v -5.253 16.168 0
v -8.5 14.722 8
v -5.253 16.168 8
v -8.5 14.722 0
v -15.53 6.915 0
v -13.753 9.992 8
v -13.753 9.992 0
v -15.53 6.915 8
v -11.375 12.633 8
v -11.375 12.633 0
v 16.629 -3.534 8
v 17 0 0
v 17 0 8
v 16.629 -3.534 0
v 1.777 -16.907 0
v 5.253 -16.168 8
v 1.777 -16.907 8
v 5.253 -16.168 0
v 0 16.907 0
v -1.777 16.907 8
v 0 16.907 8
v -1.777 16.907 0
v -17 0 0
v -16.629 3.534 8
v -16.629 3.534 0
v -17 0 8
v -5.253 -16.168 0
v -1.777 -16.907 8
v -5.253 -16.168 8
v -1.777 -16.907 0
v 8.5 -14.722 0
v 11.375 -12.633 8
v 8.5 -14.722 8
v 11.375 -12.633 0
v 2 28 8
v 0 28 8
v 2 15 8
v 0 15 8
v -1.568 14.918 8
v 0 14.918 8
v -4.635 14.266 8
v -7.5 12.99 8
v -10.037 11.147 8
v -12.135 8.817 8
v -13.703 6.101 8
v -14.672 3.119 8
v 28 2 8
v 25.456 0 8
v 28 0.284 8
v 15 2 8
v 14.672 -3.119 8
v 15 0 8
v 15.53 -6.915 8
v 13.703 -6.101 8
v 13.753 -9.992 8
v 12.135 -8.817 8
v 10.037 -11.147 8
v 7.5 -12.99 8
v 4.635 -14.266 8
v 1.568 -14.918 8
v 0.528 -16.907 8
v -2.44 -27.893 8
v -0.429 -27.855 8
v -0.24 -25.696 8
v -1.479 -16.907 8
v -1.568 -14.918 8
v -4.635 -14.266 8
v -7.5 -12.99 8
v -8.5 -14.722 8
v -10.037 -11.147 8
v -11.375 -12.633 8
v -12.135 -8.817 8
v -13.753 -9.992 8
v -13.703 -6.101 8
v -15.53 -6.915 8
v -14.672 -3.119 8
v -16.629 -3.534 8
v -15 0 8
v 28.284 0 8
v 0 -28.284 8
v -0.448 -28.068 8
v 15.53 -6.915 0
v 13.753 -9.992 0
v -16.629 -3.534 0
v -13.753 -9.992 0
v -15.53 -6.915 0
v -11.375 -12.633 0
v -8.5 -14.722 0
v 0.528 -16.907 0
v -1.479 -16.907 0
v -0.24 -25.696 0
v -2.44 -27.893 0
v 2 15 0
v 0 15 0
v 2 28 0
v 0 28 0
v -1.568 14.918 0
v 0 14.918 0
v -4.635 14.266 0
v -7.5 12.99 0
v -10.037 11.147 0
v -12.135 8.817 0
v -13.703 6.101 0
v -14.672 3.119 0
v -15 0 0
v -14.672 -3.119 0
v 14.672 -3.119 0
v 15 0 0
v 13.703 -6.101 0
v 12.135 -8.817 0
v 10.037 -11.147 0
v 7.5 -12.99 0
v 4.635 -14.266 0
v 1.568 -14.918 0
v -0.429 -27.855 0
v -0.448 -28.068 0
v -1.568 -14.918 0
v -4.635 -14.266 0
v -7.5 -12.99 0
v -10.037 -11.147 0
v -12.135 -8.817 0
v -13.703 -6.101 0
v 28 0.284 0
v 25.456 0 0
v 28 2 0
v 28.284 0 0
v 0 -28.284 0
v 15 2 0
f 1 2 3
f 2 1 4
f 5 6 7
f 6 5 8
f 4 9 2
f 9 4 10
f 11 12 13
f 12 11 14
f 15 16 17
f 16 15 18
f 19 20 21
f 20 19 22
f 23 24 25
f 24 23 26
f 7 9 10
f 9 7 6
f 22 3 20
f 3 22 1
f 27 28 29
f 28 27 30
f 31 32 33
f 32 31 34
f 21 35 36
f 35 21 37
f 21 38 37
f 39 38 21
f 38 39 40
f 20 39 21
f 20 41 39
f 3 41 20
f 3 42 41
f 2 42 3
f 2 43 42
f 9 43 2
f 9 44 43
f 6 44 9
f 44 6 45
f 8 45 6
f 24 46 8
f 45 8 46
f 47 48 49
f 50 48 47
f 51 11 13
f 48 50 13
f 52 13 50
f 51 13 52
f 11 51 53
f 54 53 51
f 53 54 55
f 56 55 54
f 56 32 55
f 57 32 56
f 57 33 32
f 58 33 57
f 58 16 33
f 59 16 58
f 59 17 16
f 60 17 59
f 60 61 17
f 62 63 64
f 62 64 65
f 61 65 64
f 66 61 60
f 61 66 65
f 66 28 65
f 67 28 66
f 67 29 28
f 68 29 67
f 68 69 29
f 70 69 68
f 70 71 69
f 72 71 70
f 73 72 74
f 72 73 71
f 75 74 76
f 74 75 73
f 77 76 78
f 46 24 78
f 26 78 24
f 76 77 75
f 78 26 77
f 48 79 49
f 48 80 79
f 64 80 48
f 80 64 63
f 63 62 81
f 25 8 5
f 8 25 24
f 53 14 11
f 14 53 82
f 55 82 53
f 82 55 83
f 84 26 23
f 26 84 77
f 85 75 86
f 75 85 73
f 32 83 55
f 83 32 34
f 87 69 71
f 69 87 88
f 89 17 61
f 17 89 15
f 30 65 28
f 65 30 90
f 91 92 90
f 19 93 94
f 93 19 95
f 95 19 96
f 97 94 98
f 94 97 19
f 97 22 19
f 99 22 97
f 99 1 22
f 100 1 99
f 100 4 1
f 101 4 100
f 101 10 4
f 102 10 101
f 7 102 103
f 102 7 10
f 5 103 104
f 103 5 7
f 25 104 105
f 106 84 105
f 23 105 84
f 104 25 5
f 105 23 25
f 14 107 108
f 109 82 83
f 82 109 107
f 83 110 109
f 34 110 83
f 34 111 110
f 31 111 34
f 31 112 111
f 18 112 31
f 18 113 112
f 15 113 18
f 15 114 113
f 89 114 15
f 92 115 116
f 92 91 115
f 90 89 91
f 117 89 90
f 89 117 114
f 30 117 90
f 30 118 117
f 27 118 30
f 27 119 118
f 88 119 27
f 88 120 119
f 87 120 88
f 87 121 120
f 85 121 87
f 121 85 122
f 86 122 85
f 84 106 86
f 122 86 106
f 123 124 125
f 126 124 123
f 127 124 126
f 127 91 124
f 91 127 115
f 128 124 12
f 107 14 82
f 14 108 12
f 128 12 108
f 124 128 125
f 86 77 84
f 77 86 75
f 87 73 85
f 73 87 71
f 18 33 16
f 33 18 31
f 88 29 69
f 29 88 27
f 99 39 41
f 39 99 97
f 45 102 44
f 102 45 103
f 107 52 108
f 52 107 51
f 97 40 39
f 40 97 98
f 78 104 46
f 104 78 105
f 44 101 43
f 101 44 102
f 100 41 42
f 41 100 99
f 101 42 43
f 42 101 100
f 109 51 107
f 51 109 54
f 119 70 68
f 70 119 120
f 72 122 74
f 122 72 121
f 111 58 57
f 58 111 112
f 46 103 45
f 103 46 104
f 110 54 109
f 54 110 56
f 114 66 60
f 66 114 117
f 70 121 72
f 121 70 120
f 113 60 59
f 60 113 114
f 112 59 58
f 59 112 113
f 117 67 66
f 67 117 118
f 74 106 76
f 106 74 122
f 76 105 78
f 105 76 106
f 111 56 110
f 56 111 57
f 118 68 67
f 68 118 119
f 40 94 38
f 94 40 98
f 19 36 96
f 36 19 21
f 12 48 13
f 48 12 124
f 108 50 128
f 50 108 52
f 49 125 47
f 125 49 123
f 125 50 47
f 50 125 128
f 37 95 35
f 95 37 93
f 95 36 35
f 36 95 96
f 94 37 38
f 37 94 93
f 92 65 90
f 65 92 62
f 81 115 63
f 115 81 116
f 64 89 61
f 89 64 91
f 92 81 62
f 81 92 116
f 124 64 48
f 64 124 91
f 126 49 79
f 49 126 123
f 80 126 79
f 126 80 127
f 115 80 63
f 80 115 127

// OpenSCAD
/* [Dimensions] */
// Inner Diameter in mm
DIA = 30;//[10:60]

// height in mm
HEIGHT = 08; //[02:10]

// Strength in mm
STRENGTH = 02; //[01:05]

// Leg Length in mm
LEGLENGTH = 13; //[0:60]


// measures in mm

difference() {
    cylinder(HEIGHT,DIA/2+STRENGTH,DIA/2+STRENGTH);cylinder(HEIGHT,DIA/2,DIA/2); 
    cube([40,40,HEIGHT]);
    }
    
 
translate([DIA/2,0,0]) cube([LEGLENGTH,STRENGTH,HEIGHT]);
translate([0,DIA/2,0]) cube([STRENGTH,LEGLENGTH,HEIGHT]);
 
rotate([0,0,175])translate([-STRENGTH,DIA/2,0]) cube([STRENGTH,LEGLENGTH,HEIGHT]);
    

rotate([0,0,135])translate([-20,-40/2,0]) cube([STRENGTH,40,HEIGHT]);
    
